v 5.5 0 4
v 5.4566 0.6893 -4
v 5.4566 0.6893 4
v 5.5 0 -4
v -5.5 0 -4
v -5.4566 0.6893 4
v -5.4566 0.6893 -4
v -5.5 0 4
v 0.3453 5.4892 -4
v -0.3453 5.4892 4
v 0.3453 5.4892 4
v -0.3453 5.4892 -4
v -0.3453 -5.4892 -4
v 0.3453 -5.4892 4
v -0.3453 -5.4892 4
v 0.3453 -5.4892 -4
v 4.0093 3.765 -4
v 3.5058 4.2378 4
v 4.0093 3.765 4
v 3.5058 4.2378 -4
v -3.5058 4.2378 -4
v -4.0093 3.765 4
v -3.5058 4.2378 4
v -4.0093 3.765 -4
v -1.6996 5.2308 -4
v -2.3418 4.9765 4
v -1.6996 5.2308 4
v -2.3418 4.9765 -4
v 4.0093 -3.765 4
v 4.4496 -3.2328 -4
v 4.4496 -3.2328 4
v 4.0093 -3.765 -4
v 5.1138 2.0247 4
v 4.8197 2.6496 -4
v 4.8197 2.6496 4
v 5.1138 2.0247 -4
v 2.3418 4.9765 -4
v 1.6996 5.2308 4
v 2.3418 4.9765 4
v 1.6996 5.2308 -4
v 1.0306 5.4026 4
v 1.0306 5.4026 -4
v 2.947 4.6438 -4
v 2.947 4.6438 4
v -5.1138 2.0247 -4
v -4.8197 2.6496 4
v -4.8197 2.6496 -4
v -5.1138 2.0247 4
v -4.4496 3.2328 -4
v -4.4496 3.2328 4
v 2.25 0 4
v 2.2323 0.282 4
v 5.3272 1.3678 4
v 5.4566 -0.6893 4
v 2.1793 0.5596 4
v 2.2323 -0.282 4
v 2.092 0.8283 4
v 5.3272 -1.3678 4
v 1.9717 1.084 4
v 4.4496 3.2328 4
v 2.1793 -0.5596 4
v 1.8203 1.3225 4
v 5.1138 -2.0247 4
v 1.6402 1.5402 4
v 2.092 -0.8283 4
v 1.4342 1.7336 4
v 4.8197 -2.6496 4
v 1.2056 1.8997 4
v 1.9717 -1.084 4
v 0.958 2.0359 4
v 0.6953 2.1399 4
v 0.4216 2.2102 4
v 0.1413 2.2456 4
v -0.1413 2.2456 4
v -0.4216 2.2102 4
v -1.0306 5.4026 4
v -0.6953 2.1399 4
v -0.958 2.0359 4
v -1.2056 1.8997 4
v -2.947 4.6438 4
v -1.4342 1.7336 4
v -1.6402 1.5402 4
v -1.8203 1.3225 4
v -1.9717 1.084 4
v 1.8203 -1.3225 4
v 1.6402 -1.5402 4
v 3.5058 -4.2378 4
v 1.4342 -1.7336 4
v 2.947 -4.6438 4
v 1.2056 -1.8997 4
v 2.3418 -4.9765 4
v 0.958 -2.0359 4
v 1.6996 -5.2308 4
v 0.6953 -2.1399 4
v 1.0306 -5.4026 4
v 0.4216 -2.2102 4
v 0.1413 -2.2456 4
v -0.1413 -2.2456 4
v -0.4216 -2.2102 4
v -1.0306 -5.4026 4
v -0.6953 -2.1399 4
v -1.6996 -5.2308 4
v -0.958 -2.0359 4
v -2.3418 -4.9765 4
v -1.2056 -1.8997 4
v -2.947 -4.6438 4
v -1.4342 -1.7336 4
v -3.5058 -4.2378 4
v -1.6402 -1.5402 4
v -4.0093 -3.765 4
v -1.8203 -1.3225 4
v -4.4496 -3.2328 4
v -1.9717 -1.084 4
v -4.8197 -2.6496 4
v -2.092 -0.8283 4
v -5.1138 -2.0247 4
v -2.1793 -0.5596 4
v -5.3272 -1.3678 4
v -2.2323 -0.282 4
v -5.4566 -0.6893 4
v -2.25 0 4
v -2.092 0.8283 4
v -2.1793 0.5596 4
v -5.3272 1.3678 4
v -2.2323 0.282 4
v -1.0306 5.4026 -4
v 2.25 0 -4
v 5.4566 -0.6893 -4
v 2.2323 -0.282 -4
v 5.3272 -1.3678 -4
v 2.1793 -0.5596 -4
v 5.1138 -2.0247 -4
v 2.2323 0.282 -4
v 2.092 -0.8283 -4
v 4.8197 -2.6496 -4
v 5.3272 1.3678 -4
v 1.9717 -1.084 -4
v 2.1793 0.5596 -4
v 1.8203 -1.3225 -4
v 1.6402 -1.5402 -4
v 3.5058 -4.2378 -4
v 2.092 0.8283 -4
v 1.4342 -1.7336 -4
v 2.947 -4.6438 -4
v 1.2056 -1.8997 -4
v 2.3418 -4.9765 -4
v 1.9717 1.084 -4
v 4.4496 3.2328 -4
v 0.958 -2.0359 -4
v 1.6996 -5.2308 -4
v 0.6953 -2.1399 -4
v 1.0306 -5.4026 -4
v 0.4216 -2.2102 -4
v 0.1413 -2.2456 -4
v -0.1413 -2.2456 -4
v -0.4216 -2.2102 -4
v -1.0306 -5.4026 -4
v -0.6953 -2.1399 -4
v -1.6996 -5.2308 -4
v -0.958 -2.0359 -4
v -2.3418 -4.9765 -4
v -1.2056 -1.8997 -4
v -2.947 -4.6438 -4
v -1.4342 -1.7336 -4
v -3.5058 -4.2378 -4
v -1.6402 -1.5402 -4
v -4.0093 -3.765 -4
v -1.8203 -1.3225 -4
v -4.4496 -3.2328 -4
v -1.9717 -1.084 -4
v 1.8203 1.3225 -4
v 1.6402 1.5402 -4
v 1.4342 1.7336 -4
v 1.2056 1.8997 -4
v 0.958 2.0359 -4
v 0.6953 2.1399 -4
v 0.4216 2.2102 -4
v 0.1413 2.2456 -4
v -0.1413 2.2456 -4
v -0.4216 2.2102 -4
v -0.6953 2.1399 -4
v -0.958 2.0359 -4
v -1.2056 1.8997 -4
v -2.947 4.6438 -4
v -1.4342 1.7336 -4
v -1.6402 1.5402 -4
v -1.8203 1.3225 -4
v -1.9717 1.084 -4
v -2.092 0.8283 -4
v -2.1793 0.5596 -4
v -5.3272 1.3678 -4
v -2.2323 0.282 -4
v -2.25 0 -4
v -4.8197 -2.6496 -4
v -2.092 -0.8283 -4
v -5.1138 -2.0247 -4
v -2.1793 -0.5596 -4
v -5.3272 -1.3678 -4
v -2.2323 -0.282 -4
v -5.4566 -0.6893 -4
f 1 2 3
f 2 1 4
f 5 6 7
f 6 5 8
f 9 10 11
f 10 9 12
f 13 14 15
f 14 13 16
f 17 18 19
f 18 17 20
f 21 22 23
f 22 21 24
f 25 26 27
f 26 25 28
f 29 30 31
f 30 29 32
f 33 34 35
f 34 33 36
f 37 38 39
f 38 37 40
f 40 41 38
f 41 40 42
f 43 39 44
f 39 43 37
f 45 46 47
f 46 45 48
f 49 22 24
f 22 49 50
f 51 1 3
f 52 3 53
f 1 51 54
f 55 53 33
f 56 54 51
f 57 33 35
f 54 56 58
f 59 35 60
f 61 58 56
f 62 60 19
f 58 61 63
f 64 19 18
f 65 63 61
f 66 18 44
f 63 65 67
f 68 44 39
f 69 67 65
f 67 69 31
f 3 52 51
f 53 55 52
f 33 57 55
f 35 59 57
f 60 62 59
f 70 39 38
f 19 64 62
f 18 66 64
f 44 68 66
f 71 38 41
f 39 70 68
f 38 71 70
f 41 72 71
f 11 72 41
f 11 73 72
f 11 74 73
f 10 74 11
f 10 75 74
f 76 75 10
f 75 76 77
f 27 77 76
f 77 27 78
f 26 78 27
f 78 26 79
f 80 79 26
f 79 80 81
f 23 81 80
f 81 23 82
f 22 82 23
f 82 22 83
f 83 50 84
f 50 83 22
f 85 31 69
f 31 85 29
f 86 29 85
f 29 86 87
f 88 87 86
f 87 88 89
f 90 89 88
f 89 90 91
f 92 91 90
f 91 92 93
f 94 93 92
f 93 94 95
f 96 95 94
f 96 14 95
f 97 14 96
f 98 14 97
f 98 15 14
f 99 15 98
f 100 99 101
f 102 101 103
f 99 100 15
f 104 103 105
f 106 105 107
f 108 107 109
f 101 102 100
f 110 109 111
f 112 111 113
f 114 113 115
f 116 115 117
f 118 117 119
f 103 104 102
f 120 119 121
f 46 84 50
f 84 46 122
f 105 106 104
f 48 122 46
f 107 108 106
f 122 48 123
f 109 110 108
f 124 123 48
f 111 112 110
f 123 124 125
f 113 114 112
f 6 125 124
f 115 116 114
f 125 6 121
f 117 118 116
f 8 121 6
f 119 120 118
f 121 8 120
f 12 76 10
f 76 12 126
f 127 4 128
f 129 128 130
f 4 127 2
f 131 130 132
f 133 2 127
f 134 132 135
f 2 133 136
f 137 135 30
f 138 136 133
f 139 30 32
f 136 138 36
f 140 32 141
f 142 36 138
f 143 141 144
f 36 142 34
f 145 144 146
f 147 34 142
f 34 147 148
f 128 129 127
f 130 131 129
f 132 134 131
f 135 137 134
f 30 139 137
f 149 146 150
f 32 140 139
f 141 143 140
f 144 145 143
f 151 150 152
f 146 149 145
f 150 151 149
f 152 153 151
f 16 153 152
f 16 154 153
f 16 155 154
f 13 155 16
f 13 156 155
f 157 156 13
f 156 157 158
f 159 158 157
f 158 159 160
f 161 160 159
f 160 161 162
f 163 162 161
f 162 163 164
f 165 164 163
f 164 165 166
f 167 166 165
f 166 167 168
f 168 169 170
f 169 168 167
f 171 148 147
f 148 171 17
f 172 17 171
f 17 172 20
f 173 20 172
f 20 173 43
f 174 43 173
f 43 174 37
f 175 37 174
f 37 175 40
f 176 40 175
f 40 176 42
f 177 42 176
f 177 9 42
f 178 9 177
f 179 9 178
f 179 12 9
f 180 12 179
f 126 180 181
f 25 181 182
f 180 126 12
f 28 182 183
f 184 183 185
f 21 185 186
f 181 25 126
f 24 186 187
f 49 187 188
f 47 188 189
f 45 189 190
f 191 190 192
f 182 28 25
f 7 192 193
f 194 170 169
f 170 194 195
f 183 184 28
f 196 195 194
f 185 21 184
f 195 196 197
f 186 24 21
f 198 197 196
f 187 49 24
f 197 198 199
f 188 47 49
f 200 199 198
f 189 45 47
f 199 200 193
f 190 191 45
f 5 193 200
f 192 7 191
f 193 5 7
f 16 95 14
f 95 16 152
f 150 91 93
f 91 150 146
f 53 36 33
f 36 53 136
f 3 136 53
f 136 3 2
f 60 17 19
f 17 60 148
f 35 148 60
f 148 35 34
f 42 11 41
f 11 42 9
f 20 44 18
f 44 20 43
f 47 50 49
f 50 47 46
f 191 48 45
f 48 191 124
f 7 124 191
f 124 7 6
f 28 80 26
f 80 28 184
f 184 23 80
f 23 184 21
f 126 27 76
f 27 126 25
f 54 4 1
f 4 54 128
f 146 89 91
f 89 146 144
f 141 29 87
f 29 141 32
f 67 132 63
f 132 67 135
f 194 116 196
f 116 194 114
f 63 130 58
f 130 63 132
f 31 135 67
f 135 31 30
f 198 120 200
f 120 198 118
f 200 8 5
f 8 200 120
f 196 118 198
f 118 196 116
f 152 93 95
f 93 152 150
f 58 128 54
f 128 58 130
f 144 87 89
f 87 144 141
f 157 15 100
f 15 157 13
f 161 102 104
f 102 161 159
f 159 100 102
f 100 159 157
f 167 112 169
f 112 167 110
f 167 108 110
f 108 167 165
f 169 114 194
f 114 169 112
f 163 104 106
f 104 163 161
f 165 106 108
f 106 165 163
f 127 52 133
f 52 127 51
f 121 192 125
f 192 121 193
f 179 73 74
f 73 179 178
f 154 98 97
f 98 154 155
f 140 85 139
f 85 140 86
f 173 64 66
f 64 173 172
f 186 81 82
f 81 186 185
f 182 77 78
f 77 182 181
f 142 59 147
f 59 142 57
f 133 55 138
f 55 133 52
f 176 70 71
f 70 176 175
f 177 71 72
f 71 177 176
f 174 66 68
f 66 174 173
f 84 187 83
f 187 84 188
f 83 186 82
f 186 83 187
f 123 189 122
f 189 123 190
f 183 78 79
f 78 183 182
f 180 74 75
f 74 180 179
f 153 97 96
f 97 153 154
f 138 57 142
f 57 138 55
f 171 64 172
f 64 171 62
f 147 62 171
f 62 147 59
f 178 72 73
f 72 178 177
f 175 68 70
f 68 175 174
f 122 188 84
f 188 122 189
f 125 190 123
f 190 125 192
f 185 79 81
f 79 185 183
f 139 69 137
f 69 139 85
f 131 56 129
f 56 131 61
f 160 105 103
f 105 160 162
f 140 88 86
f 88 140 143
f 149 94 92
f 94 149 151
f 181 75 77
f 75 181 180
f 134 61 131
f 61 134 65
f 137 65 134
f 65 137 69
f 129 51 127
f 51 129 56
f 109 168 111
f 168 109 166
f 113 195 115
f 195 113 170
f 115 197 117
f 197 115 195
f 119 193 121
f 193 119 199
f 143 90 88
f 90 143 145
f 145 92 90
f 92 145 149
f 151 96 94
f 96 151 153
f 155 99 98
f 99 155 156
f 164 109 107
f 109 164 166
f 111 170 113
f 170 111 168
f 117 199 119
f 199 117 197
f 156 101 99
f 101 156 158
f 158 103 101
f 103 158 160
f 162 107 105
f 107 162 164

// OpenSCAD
$fn = 50;


difference() {
	union() {
		translate(v = [0, 0, -4.0000000000]) {
			cylinder(h = 8, r = 5.5000000000);
		}
	}
	union() {
		translate(v = [0, 0, -100.0000000000]) {
			cylinder(h = 200, r = 2.2500000000);
		}
	}
}
